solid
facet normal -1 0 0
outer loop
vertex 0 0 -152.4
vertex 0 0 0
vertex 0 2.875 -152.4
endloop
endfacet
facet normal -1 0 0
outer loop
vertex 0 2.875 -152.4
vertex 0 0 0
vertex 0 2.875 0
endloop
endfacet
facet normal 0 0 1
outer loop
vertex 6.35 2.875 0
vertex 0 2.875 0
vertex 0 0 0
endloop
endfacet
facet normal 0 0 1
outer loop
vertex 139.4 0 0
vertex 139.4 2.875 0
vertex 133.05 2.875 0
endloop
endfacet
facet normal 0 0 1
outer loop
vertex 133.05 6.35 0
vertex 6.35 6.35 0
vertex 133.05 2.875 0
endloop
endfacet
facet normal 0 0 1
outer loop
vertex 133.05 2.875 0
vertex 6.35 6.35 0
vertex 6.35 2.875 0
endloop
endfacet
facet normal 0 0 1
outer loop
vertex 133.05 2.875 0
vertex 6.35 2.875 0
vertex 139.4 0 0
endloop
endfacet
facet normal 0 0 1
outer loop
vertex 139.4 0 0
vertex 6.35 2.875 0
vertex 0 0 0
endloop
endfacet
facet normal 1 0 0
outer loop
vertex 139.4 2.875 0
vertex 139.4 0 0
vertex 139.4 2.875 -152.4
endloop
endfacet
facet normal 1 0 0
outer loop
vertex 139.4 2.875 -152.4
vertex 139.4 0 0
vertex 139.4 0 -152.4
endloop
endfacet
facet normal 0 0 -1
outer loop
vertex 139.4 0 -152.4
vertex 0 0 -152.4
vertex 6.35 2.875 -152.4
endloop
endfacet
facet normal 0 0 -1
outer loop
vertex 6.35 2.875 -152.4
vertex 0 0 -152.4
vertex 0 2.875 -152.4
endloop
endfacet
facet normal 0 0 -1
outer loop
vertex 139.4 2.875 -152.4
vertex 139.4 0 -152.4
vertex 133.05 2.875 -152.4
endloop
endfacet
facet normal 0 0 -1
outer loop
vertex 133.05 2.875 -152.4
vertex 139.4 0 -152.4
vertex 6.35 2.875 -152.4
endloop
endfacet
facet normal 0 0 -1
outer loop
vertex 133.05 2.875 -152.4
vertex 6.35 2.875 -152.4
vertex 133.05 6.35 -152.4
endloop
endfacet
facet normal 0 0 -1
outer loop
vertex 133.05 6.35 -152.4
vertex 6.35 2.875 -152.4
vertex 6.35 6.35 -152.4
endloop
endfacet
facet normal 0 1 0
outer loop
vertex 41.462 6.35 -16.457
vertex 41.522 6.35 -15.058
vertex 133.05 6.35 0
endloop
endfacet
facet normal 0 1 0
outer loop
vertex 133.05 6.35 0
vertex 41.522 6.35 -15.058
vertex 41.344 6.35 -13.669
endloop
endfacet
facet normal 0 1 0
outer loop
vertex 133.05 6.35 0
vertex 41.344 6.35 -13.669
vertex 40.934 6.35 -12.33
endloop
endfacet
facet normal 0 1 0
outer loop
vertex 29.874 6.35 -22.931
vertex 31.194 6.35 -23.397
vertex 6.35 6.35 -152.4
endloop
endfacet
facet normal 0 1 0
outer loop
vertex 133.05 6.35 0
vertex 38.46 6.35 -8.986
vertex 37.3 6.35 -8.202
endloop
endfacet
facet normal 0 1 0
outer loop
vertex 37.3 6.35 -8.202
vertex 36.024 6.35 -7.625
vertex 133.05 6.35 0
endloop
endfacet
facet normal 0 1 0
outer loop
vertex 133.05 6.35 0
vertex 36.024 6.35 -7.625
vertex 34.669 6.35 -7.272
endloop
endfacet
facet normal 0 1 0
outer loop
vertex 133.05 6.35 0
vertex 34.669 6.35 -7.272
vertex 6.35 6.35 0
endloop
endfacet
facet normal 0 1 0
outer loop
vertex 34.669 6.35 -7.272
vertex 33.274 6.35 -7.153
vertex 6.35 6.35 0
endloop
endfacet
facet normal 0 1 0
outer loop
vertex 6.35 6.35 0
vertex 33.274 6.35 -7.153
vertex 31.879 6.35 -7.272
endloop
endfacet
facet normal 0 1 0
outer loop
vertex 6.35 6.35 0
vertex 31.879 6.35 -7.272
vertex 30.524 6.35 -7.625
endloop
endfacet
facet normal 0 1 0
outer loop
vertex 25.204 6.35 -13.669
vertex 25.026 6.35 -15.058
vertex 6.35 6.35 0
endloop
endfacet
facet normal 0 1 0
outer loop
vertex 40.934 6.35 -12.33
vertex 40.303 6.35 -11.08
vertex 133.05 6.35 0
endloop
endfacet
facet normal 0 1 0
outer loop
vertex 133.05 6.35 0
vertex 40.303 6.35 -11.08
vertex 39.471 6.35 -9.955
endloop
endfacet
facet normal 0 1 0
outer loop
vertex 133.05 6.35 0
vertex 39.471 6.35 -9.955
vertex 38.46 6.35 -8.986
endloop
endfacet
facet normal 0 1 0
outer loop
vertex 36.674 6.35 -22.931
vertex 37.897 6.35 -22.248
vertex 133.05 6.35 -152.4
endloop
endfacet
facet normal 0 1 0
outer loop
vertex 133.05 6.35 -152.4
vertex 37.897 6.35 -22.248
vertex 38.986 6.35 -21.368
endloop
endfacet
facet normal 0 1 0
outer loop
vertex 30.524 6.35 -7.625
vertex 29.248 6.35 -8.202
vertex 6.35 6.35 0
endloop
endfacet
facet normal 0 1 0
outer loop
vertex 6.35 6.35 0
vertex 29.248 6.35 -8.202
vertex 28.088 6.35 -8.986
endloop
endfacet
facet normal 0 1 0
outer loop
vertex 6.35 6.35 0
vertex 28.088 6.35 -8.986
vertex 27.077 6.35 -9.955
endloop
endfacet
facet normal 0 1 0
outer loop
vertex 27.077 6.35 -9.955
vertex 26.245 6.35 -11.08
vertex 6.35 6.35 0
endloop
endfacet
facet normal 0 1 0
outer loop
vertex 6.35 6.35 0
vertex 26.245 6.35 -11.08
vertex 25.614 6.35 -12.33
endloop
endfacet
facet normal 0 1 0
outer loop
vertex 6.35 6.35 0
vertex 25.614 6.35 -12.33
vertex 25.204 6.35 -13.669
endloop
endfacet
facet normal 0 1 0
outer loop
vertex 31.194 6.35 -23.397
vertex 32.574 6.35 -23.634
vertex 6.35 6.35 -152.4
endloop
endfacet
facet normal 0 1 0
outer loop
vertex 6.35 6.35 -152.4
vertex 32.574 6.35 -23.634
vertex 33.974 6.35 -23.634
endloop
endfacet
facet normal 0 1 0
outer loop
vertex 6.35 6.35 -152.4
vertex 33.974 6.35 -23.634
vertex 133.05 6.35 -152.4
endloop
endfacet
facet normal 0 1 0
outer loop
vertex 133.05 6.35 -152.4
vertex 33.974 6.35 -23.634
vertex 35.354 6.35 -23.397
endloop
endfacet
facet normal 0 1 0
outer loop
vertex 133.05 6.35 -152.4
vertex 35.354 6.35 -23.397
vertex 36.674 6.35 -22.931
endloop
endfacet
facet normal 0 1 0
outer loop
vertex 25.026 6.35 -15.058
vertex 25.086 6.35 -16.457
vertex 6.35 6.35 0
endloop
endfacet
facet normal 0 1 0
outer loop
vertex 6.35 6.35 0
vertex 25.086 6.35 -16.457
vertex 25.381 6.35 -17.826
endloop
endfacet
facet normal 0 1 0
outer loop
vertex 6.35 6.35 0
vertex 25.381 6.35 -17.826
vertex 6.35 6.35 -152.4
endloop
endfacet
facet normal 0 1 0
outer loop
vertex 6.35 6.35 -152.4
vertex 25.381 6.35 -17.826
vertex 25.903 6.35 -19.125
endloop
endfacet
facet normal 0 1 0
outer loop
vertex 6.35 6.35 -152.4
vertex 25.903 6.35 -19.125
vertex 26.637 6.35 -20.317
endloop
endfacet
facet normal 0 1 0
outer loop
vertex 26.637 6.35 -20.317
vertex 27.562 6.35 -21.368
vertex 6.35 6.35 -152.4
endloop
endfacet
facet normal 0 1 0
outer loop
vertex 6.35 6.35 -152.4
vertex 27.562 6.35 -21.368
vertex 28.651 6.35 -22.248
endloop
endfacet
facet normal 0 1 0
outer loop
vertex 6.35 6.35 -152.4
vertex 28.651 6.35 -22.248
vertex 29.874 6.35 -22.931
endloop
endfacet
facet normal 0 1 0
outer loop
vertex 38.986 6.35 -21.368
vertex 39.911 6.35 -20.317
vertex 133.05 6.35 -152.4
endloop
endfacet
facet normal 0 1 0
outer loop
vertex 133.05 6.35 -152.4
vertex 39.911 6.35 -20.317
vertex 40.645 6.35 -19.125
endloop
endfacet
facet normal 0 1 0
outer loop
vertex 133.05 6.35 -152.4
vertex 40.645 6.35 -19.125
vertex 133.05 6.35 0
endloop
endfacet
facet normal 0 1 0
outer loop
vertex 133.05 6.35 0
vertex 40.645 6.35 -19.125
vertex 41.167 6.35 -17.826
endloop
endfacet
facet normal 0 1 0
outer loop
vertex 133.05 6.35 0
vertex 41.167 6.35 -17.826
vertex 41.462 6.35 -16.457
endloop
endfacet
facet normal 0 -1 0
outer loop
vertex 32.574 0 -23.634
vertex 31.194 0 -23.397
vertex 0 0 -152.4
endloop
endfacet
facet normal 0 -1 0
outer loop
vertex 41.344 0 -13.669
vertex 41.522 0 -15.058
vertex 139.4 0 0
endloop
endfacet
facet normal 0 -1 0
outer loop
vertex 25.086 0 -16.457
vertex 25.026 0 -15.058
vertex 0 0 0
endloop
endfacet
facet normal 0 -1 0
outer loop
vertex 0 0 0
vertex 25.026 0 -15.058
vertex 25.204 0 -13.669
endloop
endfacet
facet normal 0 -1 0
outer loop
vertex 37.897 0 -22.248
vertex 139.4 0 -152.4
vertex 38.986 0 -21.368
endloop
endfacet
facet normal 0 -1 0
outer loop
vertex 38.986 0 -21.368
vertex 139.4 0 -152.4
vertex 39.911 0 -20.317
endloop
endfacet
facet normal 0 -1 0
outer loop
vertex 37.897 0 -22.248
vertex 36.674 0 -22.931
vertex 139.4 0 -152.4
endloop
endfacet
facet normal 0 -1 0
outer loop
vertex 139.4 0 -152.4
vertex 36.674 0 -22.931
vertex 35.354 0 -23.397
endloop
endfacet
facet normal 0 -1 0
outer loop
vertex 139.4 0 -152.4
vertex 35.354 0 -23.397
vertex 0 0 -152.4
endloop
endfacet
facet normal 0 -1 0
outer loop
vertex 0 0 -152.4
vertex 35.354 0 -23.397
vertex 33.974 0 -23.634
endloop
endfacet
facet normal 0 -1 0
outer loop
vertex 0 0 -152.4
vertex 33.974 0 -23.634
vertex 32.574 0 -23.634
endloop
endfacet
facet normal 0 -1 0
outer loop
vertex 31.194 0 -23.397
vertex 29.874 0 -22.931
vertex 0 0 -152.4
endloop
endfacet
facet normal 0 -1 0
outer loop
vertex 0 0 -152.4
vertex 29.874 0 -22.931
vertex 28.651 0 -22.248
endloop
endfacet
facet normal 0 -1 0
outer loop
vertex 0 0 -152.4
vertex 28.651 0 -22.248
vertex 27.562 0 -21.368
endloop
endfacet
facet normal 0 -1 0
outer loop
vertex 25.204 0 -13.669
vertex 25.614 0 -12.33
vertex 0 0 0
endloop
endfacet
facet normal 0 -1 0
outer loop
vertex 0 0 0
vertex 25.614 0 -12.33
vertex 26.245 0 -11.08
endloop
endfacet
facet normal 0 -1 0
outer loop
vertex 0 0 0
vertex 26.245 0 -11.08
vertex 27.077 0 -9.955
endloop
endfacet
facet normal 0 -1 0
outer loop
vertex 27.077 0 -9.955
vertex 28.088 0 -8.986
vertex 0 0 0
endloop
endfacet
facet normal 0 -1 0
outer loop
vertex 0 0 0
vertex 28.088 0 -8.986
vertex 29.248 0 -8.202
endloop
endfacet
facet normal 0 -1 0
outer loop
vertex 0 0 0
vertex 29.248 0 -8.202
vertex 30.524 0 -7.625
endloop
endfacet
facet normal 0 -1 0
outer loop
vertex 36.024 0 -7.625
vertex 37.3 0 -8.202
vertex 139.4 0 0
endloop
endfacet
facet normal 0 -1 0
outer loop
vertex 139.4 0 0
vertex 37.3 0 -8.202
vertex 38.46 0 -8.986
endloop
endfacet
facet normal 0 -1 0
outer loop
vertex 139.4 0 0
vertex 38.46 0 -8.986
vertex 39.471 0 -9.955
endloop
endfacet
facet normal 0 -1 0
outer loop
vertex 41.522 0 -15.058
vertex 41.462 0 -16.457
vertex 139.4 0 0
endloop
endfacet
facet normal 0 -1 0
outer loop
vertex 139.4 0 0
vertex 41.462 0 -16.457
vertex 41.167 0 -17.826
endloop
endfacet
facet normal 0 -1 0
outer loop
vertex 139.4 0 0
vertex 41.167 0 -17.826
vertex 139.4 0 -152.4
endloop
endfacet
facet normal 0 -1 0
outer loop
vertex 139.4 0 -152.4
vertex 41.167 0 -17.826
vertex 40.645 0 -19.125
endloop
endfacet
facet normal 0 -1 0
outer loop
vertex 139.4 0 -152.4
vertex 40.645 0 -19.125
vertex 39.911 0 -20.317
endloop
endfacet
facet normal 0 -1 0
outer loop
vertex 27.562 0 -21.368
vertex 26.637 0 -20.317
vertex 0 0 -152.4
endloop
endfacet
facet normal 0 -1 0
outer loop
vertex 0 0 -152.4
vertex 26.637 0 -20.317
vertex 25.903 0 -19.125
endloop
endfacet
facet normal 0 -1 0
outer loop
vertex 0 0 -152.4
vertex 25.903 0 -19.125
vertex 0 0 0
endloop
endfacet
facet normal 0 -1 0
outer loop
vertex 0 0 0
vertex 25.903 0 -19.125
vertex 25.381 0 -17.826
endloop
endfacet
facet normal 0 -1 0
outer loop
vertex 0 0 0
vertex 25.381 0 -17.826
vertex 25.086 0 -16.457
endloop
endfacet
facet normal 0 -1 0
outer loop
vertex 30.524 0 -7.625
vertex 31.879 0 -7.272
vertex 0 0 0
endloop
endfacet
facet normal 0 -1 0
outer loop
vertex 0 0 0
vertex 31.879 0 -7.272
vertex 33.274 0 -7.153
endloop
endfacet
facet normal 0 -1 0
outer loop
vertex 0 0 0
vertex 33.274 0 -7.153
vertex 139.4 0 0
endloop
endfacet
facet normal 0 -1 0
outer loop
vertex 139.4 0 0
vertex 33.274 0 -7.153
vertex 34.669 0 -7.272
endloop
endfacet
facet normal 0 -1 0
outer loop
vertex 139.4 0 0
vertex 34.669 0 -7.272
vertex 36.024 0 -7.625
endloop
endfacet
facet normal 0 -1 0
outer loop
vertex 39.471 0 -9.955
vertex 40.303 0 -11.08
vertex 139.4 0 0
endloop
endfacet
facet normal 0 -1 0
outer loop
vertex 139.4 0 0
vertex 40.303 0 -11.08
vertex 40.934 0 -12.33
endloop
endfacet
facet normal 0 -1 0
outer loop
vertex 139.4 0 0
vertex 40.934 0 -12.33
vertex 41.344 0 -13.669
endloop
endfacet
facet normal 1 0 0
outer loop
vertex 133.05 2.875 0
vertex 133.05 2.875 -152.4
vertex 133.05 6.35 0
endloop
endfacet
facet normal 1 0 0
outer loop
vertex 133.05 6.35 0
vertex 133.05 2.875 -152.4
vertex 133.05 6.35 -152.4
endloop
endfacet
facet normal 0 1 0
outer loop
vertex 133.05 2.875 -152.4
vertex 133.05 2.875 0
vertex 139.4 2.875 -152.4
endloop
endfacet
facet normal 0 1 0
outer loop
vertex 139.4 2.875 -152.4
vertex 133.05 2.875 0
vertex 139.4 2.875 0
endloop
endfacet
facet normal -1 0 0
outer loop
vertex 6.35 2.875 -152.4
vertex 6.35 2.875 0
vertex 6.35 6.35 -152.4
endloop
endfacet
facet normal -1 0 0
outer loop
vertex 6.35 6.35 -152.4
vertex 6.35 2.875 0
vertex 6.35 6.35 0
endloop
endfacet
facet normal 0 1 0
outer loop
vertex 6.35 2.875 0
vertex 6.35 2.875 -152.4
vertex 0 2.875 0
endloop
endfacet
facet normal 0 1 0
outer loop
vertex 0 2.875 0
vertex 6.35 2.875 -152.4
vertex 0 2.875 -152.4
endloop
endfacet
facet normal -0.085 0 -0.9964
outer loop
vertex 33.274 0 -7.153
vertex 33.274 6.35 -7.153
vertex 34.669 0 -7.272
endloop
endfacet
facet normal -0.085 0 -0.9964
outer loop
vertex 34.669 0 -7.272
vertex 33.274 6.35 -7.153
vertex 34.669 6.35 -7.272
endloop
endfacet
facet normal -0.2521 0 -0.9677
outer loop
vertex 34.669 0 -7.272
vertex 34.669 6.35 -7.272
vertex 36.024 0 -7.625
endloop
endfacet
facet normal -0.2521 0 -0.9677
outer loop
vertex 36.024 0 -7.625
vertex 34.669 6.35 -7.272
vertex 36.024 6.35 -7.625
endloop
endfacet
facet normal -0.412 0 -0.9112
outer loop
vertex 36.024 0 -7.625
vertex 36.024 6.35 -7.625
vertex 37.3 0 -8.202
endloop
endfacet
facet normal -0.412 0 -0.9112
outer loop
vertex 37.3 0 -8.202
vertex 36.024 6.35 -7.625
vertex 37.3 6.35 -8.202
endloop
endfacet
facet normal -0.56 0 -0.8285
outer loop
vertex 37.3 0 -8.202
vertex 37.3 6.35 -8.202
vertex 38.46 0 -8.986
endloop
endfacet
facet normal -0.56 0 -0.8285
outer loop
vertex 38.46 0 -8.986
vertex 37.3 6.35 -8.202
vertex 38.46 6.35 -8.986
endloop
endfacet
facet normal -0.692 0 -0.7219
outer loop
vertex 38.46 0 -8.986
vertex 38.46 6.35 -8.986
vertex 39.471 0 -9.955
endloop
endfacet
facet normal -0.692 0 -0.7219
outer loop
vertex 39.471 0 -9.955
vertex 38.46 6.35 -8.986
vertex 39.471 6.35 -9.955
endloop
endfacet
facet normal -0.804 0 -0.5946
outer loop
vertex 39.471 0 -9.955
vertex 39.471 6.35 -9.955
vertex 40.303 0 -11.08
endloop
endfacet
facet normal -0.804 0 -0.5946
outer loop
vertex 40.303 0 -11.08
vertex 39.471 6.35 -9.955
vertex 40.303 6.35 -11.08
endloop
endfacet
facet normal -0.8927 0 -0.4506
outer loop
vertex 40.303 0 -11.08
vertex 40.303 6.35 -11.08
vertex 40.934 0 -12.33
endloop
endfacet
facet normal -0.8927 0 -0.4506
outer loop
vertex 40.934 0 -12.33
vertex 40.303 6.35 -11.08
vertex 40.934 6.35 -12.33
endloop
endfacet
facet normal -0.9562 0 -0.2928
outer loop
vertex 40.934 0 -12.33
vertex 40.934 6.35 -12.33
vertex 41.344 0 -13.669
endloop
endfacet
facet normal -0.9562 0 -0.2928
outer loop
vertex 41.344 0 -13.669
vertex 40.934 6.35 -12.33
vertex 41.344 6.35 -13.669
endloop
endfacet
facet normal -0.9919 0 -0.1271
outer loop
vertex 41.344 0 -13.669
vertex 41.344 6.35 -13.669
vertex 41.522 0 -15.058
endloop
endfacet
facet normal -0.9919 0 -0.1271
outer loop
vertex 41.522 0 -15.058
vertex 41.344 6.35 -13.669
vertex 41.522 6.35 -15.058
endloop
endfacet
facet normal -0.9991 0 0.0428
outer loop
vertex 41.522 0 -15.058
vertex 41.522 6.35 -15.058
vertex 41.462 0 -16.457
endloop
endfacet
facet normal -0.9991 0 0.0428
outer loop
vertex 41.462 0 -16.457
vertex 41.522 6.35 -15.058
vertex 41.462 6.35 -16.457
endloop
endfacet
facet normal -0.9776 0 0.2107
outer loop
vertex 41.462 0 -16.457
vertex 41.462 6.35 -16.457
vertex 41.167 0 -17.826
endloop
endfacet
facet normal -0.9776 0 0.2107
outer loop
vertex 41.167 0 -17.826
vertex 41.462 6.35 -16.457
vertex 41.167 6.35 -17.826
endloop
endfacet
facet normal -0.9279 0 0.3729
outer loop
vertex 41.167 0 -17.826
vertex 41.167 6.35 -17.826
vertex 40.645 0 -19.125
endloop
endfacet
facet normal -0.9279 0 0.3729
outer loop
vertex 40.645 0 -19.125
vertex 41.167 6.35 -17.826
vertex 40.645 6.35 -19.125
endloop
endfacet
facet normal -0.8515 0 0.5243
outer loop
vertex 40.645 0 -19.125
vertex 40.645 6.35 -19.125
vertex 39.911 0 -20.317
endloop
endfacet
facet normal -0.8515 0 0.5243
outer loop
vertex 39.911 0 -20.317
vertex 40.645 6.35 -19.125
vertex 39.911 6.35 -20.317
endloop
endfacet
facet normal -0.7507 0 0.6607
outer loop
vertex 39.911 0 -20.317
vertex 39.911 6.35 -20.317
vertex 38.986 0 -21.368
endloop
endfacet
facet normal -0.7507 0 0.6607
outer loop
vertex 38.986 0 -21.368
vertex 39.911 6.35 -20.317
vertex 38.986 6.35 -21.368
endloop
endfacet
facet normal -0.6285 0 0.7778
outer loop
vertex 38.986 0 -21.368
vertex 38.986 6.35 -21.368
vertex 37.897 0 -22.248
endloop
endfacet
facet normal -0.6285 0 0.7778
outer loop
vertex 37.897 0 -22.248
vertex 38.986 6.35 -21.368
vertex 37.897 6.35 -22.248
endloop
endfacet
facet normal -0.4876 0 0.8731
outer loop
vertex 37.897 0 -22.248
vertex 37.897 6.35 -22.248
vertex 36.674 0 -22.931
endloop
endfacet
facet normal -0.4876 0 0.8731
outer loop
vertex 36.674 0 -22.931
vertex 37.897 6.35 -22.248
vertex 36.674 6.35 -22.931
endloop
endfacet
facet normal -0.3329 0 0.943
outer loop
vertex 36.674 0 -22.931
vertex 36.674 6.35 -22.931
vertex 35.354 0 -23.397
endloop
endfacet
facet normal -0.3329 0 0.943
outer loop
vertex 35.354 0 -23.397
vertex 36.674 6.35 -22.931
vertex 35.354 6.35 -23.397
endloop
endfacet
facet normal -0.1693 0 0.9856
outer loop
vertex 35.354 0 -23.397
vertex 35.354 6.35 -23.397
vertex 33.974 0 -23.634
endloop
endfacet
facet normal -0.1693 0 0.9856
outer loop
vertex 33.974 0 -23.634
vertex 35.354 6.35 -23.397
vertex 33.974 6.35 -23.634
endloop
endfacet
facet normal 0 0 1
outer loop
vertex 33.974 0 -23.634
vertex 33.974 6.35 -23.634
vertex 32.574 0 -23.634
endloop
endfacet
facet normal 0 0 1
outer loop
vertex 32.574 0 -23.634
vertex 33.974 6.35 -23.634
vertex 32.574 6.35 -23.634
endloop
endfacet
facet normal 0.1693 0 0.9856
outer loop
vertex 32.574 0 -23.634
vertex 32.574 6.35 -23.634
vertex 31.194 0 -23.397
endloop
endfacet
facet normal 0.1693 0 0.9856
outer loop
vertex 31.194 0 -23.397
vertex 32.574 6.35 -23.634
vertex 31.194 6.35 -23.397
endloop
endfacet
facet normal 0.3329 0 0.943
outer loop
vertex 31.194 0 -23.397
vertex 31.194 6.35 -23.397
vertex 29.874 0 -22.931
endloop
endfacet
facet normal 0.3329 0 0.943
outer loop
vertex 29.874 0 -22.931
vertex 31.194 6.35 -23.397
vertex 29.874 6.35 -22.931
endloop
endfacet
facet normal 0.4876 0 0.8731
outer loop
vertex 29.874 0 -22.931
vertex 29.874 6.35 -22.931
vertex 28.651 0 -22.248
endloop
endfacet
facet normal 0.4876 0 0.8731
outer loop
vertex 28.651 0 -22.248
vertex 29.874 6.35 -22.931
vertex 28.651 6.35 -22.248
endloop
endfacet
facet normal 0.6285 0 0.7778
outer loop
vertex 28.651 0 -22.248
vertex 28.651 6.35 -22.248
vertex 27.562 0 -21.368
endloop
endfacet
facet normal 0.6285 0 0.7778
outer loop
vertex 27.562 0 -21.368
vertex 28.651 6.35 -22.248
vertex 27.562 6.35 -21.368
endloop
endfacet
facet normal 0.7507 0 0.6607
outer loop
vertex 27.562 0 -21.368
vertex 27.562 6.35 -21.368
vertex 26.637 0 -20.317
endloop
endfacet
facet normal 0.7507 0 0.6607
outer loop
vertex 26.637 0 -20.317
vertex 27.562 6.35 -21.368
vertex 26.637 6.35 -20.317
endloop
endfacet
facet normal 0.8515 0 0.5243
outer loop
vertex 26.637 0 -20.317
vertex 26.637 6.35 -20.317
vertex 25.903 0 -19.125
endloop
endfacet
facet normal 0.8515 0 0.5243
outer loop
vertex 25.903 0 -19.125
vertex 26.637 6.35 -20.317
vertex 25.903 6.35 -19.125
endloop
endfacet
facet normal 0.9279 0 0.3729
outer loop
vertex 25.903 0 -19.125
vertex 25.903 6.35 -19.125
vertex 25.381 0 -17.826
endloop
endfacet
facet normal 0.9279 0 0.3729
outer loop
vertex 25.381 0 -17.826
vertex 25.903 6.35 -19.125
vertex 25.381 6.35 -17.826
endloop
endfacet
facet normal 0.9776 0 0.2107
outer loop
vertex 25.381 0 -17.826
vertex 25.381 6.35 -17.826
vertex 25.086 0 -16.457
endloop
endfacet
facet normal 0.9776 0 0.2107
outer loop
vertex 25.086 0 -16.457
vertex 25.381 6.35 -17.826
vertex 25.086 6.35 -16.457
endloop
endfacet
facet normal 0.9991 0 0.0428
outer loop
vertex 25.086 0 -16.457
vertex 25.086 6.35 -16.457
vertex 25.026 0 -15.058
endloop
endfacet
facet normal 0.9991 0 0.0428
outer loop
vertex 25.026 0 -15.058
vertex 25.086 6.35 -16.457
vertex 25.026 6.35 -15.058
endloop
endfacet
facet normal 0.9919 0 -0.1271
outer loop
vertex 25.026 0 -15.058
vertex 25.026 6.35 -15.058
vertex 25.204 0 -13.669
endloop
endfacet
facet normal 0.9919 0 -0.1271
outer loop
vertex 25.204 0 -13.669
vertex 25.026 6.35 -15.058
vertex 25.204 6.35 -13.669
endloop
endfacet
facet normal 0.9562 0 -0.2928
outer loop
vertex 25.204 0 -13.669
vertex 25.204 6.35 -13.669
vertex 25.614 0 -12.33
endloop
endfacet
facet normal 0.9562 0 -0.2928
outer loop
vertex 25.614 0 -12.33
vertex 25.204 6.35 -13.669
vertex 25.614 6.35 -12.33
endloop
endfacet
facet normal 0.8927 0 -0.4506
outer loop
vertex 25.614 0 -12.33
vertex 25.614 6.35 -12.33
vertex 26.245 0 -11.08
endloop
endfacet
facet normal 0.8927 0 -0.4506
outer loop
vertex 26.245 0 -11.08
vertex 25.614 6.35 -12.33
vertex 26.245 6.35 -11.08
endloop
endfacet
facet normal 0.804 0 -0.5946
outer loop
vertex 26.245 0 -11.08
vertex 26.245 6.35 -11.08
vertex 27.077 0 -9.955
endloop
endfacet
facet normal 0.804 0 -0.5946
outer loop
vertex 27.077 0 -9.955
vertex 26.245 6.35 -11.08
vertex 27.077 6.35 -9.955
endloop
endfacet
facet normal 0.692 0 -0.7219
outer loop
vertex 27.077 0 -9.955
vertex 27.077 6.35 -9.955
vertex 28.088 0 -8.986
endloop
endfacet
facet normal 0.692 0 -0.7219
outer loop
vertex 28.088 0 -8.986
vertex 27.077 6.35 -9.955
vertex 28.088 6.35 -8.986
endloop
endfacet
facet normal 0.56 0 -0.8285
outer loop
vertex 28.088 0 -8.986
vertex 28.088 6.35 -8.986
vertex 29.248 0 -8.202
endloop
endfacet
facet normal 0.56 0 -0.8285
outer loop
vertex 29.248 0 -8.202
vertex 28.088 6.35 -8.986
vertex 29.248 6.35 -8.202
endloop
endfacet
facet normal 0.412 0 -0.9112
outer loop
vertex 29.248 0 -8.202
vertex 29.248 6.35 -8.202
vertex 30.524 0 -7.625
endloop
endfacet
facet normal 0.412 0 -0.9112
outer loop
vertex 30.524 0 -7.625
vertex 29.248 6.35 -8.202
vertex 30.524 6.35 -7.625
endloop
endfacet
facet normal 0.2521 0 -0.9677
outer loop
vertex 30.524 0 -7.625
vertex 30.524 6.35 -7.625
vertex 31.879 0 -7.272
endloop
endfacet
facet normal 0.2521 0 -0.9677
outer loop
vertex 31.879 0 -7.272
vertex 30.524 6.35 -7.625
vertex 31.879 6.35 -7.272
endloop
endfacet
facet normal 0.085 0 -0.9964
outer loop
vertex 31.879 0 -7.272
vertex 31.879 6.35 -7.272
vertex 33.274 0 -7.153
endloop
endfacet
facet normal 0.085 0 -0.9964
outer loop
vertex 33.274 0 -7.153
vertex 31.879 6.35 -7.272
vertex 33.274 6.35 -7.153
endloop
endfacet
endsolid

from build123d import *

# Parameters (mm, degrees)
SKETCH1_W           = 139.40028
SKETCH1_H           = 152.4
BOSS_EXTRUDE1_DEPTH = 6.35
SKETCH2_W           = 6.35
SKETCH2_H           = 152.4
CUT_EXTRUDE1_DEPTH  = 3.47472
SKETCH3_R           = 8.255
CUT_EXTRUDE2_DEPTH  = 7.35


with BuildPart() as part:
    # Sketch1 → Boss-Extrude1 (new body)
    with BuildSketch(Plane(origin=(0, 0, 0), x_dir=(1, 0, 0), z_dir=(0, 1, 0))):
        with Locations((69.70014, 76.2)):
            Rectangle(SKETCH1_W, SKETCH1_H)
    extrude(amount=BOSS_EXTRUDE1_DEPTH)

    # Sketch2 → Cut-Extrude1 (cut)
    with BuildSketch(Plane(origin=(0, 6.35, 0), x_dir=(1, 0, 0), z_dir=(0, 1, 0))):
        with Locations((3.175, 76.2)):
            Rectangle(SKETCH2_W, SKETCH2_H)
        with Locations((136.22528, 76.2)):
            Rectangle(SKETCH2_W, SKETCH2_H)
    extrude(amount=-CUT_EXTRUDE1_DEPTH, mode=Mode.SUBTRACT)

    # Sketch3 → Cut-Extrude2 (cut, through all)
    with BuildSketch(Plane(origin=(0, 6.35, 0), x_dir=(1, 0, 0), z_dir=(0, 1, 0))):
        with Locations((33.274, 15.408402902)):
            Circle(SKETCH3_R)
    extrude(amount=-CUT_EXTRUDE2_DEPTH, mode=Mode.SUBTRACT)


solid = part.part
